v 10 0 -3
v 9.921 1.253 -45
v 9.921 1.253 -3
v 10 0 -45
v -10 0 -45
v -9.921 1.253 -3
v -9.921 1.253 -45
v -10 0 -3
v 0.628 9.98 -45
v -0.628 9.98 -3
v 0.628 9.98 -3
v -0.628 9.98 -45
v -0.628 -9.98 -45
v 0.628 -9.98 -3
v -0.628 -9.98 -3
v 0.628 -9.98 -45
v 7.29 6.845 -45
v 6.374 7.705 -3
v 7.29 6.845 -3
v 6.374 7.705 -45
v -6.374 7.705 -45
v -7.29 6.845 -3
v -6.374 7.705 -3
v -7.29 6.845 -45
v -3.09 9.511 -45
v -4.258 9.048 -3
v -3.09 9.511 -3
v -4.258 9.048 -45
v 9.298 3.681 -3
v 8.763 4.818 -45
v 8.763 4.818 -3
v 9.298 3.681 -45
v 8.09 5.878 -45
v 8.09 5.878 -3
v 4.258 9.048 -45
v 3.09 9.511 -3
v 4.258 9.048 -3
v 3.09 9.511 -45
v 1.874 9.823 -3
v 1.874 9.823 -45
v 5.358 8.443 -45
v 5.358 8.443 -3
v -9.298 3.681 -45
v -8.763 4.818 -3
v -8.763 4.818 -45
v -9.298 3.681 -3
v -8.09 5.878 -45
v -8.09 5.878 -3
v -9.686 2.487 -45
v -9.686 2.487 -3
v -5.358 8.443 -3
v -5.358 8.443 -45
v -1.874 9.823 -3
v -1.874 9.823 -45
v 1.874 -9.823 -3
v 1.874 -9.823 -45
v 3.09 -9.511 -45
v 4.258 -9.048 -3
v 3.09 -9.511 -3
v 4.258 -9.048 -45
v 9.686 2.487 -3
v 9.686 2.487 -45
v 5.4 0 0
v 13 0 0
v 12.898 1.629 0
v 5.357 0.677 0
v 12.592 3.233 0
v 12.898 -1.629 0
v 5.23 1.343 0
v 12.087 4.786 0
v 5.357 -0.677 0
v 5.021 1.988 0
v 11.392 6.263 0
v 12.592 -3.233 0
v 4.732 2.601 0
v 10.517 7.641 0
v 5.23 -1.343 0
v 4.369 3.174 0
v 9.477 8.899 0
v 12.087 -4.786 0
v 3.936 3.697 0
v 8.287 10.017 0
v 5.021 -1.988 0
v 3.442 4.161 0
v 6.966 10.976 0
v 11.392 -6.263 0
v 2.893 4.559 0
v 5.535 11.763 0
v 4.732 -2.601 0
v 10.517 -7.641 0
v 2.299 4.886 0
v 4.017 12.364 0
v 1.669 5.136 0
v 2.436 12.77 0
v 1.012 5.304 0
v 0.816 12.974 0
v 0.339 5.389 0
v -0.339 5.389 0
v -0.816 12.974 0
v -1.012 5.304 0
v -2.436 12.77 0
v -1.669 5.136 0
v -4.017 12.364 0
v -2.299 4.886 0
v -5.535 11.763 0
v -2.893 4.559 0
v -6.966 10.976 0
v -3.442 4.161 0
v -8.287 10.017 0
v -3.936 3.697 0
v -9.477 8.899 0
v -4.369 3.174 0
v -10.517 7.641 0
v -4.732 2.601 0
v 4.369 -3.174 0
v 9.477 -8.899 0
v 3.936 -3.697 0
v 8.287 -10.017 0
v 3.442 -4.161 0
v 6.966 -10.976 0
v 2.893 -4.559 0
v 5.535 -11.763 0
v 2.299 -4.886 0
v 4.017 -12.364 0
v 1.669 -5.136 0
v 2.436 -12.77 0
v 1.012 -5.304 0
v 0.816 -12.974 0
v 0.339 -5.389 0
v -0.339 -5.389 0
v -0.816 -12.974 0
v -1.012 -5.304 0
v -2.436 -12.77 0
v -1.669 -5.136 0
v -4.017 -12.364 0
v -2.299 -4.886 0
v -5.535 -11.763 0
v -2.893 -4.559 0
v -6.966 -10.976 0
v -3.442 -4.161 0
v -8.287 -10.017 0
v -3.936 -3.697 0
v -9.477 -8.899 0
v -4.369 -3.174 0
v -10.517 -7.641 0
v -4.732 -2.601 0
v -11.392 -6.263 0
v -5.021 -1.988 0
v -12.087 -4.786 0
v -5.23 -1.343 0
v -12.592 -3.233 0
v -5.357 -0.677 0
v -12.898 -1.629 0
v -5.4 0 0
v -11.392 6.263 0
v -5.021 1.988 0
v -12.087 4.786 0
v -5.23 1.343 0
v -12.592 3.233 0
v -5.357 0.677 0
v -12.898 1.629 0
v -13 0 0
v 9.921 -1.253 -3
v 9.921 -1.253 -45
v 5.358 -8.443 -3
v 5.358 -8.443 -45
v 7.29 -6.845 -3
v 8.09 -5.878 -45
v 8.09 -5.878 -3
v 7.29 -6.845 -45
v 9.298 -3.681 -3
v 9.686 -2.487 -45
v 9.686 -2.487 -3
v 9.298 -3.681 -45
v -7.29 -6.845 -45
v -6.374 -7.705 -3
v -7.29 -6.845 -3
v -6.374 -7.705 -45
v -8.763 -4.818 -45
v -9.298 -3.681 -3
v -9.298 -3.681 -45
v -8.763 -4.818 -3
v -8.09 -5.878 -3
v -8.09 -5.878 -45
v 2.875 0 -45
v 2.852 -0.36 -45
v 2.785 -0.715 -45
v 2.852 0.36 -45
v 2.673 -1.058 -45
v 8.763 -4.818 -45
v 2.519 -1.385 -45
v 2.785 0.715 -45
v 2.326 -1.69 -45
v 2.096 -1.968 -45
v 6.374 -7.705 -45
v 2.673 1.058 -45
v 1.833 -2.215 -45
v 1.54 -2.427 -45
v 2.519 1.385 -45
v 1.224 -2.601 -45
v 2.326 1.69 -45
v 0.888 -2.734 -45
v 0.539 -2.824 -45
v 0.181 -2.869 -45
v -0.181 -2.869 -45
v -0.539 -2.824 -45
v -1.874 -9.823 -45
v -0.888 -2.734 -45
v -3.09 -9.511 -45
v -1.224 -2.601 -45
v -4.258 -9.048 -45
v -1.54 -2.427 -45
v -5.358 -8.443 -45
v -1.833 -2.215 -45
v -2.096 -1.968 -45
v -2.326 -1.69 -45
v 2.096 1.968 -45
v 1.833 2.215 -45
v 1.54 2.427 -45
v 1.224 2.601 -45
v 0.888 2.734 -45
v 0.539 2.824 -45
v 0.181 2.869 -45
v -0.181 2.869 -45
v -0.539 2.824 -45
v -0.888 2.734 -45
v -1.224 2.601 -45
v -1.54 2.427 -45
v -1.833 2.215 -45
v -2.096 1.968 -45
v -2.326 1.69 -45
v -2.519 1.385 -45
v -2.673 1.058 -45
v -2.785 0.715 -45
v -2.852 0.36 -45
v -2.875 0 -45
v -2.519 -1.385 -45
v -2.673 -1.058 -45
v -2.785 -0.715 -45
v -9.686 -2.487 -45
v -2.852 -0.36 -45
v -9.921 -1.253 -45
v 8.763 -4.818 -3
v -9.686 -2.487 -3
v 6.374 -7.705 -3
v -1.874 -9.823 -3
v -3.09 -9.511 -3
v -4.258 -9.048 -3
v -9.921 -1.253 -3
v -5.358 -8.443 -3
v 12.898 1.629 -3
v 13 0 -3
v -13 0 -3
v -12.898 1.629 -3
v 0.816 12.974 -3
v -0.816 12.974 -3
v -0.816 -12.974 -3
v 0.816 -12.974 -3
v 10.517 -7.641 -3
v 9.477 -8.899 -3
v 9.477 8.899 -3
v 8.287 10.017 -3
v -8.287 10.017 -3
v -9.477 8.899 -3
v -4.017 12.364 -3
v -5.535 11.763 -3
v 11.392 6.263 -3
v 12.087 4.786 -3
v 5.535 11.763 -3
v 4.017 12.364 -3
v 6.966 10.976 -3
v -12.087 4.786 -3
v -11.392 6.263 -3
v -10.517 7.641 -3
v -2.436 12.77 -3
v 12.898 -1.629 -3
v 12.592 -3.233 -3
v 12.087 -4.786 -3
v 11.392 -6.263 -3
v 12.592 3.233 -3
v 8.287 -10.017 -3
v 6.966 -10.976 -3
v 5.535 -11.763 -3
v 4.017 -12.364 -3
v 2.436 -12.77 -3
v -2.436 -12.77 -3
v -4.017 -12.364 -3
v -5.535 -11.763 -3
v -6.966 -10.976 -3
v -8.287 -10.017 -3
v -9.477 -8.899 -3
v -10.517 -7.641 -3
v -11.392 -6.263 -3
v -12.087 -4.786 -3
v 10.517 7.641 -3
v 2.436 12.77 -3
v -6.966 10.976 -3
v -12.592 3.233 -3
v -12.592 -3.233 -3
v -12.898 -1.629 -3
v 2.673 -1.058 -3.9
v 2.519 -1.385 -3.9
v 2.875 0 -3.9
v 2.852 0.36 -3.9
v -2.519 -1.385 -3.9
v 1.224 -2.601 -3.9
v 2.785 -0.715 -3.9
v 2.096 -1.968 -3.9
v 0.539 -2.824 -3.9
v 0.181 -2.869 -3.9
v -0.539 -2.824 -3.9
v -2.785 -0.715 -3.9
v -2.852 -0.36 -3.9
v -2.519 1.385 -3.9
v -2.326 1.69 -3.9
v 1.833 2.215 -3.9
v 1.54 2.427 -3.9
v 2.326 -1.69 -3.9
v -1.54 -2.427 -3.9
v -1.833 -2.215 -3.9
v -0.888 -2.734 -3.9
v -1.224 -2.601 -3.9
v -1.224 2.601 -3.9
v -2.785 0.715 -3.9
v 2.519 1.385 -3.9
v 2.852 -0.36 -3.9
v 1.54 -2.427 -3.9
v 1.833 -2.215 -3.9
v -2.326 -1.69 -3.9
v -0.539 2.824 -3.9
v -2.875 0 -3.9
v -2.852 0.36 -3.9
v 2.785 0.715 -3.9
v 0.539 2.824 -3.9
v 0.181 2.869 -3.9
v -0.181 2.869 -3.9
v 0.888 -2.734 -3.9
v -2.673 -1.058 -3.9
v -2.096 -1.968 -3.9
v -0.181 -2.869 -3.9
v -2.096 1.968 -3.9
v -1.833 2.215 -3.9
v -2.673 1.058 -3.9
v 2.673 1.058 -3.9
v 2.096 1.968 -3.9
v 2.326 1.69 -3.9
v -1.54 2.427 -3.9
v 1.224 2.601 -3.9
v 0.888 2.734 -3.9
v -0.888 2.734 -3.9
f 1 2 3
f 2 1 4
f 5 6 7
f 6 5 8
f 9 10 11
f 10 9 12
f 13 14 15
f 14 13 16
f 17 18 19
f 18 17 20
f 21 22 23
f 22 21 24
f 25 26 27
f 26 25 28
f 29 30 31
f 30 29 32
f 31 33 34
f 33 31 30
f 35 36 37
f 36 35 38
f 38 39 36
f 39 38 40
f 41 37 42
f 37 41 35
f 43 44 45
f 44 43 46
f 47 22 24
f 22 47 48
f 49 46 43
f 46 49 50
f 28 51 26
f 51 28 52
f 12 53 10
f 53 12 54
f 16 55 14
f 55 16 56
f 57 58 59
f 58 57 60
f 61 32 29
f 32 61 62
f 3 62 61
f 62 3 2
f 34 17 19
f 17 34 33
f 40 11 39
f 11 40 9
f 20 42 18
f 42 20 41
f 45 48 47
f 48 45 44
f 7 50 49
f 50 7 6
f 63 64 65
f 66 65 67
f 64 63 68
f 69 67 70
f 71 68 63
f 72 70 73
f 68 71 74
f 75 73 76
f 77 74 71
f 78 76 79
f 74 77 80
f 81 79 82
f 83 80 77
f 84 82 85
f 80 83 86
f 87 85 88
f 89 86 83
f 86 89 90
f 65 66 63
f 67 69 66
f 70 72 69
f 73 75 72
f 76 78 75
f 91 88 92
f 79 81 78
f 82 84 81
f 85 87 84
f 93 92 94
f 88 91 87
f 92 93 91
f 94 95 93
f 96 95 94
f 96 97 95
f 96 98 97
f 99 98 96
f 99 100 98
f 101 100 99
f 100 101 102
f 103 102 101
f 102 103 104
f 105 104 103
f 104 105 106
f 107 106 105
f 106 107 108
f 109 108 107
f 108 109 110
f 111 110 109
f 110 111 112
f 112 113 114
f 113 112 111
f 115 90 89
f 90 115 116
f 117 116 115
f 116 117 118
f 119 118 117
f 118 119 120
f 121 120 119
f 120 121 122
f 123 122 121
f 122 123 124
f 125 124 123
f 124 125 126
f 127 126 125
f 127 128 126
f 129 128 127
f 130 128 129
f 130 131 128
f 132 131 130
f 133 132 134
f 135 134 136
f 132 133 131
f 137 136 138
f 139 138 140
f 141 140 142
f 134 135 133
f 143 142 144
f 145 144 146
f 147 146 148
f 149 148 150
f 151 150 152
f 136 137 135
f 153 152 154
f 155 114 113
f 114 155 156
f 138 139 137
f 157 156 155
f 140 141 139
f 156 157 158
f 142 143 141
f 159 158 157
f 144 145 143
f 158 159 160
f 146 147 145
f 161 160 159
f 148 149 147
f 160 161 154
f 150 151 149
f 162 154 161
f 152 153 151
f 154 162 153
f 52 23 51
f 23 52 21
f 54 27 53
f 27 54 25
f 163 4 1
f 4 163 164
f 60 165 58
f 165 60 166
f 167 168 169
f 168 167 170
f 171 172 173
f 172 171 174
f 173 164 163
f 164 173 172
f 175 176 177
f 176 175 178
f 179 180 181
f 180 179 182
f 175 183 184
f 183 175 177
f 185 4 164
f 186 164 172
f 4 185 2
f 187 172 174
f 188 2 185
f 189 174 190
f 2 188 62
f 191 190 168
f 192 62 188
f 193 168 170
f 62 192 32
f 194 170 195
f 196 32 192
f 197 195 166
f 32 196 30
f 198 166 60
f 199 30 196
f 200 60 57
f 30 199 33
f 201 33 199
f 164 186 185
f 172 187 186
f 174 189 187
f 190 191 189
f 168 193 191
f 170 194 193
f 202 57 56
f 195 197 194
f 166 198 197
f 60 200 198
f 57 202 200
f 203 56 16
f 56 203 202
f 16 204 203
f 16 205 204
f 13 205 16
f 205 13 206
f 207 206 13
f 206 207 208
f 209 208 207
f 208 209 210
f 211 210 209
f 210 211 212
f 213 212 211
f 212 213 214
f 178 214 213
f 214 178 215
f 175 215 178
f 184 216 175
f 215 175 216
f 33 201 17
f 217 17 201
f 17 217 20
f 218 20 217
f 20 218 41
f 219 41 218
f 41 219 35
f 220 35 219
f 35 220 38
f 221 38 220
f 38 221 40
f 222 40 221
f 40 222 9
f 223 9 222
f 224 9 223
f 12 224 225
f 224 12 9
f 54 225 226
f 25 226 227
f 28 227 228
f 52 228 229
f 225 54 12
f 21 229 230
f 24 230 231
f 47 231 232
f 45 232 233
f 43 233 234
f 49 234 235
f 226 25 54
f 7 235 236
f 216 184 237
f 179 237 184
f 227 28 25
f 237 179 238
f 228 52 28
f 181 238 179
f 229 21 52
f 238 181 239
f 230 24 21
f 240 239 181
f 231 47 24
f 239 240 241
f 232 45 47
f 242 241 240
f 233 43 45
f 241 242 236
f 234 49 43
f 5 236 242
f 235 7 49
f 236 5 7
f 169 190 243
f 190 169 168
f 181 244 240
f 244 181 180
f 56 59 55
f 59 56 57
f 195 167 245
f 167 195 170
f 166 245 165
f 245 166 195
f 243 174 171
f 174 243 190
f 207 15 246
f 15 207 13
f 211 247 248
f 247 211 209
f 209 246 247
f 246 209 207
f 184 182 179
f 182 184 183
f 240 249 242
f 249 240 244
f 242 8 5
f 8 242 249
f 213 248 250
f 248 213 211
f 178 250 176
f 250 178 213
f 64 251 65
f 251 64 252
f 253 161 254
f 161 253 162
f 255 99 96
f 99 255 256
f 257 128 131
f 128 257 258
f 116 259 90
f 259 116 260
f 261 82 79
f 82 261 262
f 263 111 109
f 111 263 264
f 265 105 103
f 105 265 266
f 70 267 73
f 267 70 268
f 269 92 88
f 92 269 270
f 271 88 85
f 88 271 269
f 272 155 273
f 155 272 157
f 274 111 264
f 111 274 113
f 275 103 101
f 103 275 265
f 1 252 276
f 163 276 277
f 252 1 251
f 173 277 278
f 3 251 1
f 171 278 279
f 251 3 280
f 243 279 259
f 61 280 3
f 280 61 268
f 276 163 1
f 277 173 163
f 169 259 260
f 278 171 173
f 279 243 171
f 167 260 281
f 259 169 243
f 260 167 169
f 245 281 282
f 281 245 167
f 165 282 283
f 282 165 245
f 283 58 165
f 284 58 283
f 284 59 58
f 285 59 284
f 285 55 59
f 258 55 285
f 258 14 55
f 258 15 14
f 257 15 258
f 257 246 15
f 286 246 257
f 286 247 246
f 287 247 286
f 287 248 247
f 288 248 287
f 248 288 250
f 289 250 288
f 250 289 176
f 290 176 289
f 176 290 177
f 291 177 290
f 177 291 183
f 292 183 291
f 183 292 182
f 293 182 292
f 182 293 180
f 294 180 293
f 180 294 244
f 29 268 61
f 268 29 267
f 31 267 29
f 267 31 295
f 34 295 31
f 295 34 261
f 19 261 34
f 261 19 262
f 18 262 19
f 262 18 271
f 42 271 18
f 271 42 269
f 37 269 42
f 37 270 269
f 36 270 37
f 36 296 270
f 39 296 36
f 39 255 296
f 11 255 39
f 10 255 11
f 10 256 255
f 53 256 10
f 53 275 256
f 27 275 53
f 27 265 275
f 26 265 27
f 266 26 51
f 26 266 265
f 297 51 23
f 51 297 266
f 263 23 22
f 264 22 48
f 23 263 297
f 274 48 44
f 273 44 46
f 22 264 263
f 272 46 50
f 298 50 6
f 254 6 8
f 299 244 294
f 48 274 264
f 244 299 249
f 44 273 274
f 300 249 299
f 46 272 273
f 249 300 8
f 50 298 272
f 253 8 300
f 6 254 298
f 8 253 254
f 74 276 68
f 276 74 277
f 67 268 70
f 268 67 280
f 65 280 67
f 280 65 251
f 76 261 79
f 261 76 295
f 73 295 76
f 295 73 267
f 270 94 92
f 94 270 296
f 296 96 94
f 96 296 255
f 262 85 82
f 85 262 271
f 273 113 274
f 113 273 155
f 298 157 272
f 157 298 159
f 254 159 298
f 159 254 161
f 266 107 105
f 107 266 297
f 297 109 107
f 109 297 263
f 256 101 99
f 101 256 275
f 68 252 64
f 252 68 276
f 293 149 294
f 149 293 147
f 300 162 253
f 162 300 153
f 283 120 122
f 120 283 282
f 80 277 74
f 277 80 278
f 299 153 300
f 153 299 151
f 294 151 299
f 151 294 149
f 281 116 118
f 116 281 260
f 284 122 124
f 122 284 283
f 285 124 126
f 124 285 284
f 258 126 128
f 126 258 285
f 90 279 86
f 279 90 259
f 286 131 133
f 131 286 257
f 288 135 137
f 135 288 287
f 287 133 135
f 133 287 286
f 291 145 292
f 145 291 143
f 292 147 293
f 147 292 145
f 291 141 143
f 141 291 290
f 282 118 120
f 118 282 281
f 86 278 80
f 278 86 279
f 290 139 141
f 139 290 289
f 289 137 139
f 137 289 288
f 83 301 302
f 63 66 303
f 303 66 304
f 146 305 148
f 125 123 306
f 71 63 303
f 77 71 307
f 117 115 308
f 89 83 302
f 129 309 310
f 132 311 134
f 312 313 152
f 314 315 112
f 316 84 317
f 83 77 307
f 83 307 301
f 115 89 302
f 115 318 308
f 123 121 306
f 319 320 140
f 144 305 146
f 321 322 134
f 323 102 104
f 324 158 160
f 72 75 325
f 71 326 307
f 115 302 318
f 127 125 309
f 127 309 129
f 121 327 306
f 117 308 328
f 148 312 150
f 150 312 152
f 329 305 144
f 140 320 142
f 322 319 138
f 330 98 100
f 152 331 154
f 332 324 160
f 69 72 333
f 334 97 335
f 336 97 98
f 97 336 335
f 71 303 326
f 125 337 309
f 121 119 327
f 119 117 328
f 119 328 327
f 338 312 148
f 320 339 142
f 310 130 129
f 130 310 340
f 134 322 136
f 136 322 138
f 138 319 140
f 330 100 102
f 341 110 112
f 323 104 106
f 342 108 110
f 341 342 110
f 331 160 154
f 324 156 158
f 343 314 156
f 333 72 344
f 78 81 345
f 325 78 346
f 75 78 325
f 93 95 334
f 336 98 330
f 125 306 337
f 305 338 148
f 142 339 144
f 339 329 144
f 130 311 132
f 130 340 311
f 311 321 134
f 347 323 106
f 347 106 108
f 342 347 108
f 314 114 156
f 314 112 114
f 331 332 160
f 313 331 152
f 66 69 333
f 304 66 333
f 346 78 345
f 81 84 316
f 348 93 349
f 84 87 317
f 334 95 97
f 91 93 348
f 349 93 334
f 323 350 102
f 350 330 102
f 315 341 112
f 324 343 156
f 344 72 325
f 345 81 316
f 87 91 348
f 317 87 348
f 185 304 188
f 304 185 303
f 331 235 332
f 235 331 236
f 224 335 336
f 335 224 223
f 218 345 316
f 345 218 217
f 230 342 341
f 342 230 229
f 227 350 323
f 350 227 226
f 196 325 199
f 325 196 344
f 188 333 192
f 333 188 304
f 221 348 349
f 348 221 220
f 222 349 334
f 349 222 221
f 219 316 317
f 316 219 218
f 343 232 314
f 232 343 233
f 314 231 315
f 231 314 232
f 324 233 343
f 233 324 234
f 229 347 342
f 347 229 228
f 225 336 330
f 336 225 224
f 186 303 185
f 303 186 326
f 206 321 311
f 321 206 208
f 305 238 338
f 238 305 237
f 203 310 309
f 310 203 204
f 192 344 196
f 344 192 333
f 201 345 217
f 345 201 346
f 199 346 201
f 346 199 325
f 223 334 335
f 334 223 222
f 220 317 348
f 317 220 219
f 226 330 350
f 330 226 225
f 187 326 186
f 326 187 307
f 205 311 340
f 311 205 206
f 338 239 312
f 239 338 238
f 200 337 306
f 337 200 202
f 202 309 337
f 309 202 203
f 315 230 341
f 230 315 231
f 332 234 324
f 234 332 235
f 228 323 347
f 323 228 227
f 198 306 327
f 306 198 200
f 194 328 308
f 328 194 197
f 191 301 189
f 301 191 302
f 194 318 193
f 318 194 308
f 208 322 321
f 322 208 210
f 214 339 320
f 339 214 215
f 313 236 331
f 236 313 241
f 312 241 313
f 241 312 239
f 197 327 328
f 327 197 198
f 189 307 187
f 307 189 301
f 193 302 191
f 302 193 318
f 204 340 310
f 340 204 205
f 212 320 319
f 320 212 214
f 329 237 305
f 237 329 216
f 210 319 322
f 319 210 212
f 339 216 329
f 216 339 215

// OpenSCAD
$fn = 50;


difference() {
	union() {
		translate(v = [0, 0, -45.0000000000]) {
			cylinder(h = 45, r = 10.0000000000);
		}
		translate(v = [0, 0, -3.0000000000]) {
			cylinder(h = 3, r = 13.0000000000);
		}
	}
	union() {
		translate(v = [0, 0, 0]) {
			rotate(a = [0, 0, 0]) {
				difference() {
					union() {
						#translate(v = [0, 0, -45.0000000000]) {
							cylinder(h = 45, r = 2.6000000000);
						}
						#translate(v = [0, 0, -3.9000000000]) {
							cylinder(h = 3.9000000000, r = 10.0000000000, r1 = 2.8750000000, r2 = 5.4000000000);
						}
						#translate(v = [0, 0, -45.0000000000]) {
							cylinder(h = 45, r = 2.8750000000);
						}
						#translate(v = [0, 0, -45.0000000000]) {
							cylinder(h = 45, r = 2.6000000000);
						}
					}
					union();
				}
			}
		}
	}
}
